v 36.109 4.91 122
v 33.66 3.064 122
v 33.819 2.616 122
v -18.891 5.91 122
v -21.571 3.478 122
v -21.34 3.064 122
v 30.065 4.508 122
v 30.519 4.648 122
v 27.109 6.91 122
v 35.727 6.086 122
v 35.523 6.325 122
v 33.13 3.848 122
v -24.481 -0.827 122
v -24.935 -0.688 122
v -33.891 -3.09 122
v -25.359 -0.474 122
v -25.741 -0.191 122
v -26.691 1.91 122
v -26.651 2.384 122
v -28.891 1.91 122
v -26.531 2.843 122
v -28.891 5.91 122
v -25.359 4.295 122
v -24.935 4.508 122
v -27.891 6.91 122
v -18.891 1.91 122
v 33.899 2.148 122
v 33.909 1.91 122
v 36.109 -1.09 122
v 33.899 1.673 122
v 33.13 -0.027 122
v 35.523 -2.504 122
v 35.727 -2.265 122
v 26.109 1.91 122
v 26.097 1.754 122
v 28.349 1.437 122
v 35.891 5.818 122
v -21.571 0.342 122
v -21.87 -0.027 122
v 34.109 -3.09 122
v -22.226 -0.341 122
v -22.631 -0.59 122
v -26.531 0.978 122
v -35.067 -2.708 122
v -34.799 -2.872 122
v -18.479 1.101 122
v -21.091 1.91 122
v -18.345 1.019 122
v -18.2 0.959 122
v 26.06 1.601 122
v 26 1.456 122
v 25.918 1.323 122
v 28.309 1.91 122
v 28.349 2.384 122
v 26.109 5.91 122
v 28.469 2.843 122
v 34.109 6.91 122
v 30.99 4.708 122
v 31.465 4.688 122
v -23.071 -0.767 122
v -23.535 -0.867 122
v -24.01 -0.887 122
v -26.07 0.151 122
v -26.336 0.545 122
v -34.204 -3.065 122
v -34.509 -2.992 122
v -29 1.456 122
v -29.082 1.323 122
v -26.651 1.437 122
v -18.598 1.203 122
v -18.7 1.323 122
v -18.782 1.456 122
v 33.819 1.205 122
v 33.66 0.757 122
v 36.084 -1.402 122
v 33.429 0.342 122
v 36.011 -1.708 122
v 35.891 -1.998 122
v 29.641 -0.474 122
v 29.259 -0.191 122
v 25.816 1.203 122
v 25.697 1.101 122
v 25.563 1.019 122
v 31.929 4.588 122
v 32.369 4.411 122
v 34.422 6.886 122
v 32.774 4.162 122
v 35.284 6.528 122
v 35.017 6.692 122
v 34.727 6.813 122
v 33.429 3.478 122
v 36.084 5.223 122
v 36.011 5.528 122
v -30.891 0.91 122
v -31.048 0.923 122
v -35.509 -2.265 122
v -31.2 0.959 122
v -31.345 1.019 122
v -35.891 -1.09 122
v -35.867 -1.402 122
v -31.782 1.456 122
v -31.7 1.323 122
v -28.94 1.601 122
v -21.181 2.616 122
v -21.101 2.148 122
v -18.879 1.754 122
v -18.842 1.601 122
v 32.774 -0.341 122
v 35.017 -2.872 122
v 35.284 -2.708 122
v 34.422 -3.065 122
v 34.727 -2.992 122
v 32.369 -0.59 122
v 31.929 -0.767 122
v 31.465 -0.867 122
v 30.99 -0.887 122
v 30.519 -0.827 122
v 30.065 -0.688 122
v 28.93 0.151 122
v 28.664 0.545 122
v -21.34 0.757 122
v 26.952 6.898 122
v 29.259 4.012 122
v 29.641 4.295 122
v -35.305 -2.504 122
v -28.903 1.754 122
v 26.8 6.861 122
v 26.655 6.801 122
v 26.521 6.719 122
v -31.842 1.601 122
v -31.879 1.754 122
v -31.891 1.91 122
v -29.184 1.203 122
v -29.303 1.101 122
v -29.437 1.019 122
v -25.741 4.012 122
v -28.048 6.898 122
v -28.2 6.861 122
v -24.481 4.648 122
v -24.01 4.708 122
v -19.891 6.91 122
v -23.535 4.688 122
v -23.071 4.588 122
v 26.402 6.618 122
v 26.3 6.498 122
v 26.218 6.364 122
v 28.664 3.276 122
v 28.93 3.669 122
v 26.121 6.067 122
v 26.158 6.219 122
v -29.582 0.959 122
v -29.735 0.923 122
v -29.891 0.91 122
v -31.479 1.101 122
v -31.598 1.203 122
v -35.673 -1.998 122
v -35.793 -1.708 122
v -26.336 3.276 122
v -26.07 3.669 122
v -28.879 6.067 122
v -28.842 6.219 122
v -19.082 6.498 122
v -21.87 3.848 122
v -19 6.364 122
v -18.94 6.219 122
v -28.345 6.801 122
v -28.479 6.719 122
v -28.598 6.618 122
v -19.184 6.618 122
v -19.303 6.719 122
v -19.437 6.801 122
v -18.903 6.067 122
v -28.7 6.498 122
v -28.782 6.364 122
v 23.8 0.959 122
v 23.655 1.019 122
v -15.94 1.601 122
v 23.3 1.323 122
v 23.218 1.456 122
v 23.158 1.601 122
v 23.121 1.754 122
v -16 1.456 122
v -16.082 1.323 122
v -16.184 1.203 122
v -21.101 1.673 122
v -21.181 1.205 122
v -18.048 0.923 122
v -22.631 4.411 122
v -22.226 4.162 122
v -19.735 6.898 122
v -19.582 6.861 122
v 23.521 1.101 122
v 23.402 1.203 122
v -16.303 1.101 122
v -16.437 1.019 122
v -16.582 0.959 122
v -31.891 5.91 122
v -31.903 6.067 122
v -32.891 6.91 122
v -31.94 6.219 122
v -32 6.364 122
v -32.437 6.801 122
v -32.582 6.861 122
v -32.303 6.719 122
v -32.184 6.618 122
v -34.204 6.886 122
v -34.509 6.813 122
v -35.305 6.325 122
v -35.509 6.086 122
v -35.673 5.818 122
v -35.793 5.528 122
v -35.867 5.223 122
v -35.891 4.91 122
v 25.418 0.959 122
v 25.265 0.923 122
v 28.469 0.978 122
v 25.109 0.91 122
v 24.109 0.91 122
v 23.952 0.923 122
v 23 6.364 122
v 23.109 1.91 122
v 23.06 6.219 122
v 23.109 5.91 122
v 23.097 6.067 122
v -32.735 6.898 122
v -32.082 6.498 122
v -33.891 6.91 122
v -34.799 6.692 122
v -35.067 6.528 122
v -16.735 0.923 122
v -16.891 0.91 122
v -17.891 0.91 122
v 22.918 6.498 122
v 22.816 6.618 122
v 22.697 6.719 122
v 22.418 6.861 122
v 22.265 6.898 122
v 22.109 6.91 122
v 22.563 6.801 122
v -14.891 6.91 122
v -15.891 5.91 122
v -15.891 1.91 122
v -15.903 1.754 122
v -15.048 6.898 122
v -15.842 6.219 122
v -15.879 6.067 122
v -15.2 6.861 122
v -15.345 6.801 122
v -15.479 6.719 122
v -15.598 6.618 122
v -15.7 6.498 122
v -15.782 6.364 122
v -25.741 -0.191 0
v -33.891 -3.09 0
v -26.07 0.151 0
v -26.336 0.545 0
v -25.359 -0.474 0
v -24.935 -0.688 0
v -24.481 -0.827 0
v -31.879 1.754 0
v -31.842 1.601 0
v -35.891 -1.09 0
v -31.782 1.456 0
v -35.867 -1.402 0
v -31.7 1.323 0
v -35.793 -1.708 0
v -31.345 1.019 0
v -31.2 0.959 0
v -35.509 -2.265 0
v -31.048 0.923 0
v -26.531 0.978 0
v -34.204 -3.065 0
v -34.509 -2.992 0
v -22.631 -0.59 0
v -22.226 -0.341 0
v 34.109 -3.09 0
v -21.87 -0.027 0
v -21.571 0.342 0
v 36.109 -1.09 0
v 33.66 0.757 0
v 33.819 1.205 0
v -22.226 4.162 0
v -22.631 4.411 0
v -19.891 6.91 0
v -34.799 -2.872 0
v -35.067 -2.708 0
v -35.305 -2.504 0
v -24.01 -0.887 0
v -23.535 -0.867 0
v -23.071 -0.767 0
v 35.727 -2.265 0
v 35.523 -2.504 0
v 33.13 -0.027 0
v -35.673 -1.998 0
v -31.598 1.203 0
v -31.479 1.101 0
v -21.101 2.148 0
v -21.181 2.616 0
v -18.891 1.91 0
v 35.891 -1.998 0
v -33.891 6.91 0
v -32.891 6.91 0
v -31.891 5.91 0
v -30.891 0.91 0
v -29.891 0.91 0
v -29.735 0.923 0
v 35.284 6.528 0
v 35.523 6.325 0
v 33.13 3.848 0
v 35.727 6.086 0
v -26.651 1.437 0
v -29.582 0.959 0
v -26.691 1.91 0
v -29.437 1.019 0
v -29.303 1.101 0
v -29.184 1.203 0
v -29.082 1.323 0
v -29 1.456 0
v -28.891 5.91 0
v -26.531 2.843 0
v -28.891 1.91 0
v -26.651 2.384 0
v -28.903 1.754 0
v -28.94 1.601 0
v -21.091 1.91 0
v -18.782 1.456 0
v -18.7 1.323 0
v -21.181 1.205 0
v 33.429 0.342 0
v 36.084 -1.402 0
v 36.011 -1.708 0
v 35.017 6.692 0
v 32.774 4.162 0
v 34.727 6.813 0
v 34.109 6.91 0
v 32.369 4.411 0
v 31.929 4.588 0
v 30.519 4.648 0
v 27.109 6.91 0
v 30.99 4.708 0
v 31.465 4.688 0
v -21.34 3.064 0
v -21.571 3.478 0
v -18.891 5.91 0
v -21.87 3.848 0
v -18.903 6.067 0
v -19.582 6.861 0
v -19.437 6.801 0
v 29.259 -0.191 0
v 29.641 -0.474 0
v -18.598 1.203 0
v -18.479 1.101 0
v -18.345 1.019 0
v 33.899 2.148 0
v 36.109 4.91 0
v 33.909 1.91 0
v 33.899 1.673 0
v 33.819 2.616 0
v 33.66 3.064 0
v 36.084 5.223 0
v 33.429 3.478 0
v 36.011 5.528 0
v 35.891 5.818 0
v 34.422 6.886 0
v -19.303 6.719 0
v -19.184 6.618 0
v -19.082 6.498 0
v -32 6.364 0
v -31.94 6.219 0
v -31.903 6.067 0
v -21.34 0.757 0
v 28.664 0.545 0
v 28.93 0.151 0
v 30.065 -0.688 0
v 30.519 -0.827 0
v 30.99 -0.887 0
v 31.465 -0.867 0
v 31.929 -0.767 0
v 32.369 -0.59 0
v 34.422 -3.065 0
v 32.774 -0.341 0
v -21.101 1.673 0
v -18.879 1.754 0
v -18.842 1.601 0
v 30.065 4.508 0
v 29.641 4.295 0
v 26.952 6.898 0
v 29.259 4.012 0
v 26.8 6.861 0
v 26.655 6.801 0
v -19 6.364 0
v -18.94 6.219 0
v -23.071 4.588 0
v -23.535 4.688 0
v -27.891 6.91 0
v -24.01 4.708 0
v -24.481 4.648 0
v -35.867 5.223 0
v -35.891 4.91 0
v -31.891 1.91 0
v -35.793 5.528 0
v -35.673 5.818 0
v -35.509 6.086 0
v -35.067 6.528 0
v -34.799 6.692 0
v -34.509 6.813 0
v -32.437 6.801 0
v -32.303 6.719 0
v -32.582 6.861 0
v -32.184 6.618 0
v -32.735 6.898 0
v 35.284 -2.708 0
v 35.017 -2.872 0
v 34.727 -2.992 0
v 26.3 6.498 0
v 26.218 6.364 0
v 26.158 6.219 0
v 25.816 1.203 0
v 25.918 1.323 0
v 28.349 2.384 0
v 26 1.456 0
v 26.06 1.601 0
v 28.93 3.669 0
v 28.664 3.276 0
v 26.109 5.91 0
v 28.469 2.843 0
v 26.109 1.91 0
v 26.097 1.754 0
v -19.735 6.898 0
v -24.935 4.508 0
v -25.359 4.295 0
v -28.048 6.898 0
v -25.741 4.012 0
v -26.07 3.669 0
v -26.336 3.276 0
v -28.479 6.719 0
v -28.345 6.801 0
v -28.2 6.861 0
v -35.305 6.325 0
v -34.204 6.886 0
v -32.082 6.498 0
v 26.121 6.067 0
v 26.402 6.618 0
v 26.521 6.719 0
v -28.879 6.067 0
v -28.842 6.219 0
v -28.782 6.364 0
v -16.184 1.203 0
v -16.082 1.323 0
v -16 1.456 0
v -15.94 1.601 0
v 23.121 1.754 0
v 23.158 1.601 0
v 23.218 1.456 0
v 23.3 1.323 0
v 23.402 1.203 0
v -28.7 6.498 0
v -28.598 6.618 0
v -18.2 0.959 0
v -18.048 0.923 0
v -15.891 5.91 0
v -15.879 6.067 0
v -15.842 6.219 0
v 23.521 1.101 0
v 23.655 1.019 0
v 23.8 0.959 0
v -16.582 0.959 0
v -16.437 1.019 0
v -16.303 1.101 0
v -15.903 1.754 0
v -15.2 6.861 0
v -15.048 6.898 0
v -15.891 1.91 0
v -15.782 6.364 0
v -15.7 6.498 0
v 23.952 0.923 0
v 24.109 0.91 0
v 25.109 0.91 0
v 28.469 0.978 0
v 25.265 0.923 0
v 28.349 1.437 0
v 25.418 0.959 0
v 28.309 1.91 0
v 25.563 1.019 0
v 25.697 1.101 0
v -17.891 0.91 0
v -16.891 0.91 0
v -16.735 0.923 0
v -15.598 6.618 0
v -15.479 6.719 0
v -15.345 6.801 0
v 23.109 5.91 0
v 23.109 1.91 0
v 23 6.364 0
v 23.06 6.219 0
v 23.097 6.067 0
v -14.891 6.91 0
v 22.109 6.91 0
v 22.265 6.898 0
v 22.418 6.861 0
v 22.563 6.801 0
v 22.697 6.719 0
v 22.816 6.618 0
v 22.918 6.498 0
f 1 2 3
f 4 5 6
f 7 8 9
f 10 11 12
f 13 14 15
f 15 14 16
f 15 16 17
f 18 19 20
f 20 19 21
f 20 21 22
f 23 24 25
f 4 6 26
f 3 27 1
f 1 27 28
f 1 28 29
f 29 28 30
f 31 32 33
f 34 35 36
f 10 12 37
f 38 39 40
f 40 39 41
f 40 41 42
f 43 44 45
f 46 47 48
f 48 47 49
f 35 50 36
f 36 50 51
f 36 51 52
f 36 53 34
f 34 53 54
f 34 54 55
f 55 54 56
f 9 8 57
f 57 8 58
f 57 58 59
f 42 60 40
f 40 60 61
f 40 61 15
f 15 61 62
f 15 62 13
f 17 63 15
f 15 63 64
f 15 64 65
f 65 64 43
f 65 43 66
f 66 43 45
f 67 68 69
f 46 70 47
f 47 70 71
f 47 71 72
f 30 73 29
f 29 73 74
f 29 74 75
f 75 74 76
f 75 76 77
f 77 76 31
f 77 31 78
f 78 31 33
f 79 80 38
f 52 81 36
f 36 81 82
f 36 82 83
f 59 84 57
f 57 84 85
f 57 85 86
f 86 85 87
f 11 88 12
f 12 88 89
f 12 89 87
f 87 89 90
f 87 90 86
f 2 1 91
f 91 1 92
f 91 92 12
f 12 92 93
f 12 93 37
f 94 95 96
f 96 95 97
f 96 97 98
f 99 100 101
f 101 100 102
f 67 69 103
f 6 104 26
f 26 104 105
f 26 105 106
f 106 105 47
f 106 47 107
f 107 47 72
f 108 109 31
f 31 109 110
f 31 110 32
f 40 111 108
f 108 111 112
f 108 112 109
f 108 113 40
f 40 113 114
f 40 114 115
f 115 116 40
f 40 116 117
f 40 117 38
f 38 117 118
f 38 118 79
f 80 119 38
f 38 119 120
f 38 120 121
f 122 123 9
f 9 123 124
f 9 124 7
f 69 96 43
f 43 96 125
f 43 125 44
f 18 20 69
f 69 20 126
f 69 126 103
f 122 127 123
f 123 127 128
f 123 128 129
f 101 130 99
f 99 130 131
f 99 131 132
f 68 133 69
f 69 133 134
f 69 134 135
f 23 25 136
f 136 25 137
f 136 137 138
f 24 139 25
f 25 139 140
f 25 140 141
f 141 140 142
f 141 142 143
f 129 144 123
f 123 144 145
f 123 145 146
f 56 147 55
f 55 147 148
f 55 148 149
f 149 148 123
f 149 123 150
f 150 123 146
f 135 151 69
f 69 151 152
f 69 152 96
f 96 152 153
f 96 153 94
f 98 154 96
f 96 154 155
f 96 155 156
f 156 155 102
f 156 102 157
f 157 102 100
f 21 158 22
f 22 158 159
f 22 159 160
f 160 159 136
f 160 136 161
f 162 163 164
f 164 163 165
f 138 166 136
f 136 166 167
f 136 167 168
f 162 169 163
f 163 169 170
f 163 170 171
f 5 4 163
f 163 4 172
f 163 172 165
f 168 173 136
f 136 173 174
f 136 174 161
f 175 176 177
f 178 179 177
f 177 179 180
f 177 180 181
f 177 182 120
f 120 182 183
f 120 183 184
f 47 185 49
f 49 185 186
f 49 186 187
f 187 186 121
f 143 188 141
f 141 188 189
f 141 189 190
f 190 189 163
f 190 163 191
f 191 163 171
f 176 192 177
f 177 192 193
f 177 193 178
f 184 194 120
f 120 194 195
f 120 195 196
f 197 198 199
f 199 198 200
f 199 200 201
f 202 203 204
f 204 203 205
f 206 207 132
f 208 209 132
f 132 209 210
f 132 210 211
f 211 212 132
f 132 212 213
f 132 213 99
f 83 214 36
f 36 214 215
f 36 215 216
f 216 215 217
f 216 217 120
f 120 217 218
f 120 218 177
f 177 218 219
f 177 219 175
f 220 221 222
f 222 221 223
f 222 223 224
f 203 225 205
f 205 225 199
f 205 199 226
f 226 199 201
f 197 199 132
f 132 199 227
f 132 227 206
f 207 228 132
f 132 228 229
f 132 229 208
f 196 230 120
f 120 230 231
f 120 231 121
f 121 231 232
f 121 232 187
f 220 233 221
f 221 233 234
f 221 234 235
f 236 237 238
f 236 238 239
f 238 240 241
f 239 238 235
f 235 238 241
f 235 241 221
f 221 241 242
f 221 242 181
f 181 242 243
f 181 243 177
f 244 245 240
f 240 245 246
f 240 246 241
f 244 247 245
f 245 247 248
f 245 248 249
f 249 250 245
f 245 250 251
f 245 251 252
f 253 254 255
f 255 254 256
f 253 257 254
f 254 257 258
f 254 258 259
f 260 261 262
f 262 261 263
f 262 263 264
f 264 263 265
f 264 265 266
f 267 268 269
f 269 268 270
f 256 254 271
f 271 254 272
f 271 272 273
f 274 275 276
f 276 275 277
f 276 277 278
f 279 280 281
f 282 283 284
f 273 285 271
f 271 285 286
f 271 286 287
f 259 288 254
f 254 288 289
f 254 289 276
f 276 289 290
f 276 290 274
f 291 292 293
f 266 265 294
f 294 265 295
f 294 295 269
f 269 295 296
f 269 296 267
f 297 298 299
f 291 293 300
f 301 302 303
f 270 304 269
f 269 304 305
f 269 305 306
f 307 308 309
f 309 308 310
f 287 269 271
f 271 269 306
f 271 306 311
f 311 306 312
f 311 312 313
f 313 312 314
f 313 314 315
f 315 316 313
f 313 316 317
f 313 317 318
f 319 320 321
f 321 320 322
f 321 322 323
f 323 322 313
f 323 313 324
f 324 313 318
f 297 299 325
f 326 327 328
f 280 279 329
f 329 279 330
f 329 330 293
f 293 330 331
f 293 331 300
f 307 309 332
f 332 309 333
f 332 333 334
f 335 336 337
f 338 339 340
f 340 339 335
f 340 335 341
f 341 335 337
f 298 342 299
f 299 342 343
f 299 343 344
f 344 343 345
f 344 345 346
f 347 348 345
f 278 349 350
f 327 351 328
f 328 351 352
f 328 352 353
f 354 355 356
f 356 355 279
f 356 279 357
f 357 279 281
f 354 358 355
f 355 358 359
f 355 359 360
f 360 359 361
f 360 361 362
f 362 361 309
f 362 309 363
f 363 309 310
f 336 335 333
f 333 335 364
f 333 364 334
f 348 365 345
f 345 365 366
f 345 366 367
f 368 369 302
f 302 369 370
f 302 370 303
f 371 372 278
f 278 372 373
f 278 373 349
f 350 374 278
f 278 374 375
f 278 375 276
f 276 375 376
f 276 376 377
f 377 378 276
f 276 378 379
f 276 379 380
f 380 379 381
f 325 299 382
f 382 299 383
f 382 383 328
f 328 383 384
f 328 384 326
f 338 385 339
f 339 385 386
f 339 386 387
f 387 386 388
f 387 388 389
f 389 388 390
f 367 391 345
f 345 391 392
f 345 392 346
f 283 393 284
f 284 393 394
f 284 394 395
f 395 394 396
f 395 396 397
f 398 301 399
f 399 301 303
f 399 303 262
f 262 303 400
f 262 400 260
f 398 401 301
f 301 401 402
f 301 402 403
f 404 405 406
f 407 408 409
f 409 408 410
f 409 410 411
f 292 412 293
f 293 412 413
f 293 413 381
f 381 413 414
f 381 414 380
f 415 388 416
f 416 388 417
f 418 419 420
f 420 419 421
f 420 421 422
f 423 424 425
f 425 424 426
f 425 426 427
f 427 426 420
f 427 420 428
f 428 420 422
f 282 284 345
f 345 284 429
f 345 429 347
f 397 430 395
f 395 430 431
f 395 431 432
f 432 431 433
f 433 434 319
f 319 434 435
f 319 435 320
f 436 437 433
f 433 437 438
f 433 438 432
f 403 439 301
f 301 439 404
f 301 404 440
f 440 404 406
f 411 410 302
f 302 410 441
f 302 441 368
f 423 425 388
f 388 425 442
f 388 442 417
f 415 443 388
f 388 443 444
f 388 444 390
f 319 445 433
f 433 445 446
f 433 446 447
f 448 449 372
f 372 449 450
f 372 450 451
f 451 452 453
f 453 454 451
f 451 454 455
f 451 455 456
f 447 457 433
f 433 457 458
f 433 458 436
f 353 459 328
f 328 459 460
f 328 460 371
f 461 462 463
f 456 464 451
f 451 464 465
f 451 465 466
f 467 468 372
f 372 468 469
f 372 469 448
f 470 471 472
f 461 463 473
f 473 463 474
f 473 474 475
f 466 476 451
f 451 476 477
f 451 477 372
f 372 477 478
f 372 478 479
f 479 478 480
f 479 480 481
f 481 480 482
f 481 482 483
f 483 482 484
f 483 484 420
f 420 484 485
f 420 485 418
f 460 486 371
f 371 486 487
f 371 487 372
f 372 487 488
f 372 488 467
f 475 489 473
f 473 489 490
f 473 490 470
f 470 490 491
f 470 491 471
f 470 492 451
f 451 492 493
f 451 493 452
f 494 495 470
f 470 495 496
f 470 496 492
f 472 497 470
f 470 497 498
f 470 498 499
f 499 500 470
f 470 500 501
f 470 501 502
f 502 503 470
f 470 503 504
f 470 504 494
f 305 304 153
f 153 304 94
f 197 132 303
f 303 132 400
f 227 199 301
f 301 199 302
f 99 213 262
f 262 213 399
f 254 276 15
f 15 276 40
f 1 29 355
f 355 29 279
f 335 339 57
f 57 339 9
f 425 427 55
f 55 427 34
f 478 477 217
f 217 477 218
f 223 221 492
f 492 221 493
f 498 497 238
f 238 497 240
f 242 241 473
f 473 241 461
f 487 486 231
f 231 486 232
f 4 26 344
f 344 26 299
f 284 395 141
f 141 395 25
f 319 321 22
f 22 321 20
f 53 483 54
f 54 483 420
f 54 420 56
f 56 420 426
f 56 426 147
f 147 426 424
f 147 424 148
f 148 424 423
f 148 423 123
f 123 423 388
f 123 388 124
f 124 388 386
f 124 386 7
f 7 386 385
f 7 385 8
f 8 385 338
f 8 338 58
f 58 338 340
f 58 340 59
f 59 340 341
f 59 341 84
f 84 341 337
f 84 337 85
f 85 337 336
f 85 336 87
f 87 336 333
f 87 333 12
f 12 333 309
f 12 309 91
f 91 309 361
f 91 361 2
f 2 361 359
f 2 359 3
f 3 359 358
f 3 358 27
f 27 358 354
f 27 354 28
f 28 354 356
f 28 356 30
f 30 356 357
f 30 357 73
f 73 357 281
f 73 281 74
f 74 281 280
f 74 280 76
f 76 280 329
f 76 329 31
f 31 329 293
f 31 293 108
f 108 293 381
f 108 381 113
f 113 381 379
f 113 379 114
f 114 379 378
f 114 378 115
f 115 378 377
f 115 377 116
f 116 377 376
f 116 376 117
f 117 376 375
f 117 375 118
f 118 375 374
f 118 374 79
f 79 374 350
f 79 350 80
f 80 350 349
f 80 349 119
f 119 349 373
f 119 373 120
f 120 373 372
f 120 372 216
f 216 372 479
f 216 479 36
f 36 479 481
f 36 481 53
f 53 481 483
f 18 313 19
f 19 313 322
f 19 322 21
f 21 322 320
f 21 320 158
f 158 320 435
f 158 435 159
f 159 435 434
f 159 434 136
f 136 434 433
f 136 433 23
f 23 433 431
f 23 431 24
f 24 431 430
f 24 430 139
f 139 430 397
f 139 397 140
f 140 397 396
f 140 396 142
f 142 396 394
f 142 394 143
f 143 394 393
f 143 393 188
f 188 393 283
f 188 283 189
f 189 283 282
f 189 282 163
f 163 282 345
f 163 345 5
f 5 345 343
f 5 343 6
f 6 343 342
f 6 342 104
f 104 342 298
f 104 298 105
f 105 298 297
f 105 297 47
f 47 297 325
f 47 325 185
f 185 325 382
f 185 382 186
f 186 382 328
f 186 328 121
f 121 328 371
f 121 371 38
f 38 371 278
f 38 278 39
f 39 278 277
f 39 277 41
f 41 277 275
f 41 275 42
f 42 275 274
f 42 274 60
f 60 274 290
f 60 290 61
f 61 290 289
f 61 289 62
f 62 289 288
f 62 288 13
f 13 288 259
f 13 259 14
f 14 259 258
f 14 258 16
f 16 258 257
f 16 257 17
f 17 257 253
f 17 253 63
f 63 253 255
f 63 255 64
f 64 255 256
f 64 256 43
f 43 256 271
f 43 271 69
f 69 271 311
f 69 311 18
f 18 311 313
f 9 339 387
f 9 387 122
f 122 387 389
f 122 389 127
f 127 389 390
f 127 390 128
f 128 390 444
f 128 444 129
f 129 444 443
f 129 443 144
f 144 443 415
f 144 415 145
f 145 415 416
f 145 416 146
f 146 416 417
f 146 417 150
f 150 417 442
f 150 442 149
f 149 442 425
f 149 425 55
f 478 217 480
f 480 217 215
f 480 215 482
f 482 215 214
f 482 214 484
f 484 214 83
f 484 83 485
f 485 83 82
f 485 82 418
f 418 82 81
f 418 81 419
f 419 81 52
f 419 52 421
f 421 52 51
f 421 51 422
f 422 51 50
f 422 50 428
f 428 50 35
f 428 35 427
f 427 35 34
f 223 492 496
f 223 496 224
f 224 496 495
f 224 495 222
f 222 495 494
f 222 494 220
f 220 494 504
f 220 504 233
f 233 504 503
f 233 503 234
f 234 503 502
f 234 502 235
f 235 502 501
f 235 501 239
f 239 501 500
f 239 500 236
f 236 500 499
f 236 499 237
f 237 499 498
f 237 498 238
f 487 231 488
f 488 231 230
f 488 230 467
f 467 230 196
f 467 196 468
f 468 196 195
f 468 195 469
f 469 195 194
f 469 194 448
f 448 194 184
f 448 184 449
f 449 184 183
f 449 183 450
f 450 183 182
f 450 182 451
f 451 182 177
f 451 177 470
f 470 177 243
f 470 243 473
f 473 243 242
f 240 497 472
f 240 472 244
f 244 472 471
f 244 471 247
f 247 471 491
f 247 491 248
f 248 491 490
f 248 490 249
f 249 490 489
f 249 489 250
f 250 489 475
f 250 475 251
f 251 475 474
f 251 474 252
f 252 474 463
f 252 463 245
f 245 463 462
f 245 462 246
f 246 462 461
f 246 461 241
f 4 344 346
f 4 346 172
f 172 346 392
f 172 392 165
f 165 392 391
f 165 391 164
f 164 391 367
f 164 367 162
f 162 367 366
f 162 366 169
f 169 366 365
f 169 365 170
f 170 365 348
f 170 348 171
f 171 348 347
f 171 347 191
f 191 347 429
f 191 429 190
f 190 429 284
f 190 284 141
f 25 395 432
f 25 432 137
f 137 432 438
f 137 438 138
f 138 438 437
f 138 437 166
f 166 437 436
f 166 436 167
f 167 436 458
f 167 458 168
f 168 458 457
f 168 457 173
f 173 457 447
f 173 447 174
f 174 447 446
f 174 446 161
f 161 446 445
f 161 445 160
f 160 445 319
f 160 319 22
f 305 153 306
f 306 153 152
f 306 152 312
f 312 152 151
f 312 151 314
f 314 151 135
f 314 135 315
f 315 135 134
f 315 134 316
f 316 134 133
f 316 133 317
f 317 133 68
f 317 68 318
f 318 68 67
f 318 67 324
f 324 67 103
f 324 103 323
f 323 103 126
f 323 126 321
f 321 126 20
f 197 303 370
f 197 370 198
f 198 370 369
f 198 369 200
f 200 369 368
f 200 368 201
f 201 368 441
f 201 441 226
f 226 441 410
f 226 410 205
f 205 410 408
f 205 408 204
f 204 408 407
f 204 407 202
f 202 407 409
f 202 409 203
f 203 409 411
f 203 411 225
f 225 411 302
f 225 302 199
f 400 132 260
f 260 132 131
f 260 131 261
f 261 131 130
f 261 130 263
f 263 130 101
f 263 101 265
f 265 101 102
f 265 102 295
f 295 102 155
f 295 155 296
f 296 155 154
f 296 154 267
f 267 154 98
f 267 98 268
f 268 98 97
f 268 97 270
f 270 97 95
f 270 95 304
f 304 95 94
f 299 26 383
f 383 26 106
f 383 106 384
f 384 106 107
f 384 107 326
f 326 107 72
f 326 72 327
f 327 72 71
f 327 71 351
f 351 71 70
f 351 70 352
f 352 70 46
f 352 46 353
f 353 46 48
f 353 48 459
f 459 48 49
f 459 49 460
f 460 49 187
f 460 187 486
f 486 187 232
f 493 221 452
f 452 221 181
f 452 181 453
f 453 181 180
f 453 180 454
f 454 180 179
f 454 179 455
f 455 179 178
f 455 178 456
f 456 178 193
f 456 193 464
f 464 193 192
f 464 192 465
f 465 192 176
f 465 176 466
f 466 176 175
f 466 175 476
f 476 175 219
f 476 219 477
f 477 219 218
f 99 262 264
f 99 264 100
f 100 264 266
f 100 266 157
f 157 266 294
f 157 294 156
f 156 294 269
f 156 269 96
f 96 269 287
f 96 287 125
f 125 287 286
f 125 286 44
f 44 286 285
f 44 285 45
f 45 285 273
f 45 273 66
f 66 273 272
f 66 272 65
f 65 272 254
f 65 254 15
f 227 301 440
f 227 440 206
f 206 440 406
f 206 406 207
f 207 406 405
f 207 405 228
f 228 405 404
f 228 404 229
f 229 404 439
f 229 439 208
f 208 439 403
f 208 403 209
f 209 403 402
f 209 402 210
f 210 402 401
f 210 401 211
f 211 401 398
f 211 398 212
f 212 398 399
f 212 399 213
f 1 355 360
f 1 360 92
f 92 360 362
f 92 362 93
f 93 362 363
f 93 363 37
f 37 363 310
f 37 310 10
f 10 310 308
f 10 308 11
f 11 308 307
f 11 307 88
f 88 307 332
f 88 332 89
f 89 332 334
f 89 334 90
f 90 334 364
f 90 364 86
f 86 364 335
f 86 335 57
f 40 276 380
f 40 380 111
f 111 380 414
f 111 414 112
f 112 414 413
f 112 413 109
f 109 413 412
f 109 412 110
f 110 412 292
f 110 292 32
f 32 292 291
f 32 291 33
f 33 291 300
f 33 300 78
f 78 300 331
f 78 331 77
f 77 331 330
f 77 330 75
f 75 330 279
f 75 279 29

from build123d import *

# Parameters (mm, degrees)
ESQUISSE1_R        = 2.8
BOSS_EXTRU_1_DEPTH = 122
CONG_1_R           = 1
CONG_2_R           = 2


with BuildPart() as part:
    # Esquisse1 → Boss.-Extru.1 (new body)
    with BuildSketch(Plane.XY):
        Polygon((-35.89112663, -3.089603204), (-35.89112663, 6.910396796), (-31.89112663, 6.910396796), (-31.89112663, 0.910396796), (-28.89112663, 0.910396796), (-28.89112663, 6.910396796), (-18.89112663, 6.910396796), (-18.89112663, 0.910396796), (-15.89112663, 0.910396796), (-15.89112663, 6.910396796), (23.10887337, 6.910396796), (23.10887337, 0.910396796), (26.10887337, 0.910396796), (26.10887337, 6.910396796), (36.10887337, 6.910396796), (36.10887337, -3.089603204), align=None)
        with Locations((-23.89112663, 1.910396796)):
            Circle(ESQUISSE1_R, mode=Mode.SUBTRACT)
        with Locations((31.10887337, 1.910396796)):
            Circle(ESQUISSE1_R, mode=Mode.SUBTRACT)
    extrude(amount=BOSS_EXTRU_1_DEPTH)

    # Congé1
    cong_1_edges = [part.edges().sort_by_distance(p)[0] for p in [
        (-31.89112663, 0.910396796, 61),
        (-31.89112663, 6.910396796, 61),
        (26.10887337, 6.910396796, 61),
        (26.10887337, 0.910396796, 61),
        (23.10887337, 0.910396796, 61),
        (23.10887337, 6.910396796, 61),
        (-15.89112663, 6.910396796, 61),
        (-15.89112663, 0.910396796, 61),
        (-18.89112663, 0.910396796, 61),
        (-18.89112663, 6.910396796, 61),
        (-28.89112663, 6.910396796, 61),
        (-28.89112663, 0.910396796, 61),
    ]]
    fillet(cong_1_edges, radius=CONG_1_R)

    # Congé2
    cong_2_edges = [part.edges().sort_by_distance(p)[0] for p in [
        (-35.89112663, 6.910396796, 61),
        (-35.89112663, -3.089603204, 61),
        (36.10887337, -3.089603204, 61),
        (36.10887337, 6.910396796, 61),
    ]]
    fillet(cong_2_edges, radius=CONG_2_R)


solid = part.part
